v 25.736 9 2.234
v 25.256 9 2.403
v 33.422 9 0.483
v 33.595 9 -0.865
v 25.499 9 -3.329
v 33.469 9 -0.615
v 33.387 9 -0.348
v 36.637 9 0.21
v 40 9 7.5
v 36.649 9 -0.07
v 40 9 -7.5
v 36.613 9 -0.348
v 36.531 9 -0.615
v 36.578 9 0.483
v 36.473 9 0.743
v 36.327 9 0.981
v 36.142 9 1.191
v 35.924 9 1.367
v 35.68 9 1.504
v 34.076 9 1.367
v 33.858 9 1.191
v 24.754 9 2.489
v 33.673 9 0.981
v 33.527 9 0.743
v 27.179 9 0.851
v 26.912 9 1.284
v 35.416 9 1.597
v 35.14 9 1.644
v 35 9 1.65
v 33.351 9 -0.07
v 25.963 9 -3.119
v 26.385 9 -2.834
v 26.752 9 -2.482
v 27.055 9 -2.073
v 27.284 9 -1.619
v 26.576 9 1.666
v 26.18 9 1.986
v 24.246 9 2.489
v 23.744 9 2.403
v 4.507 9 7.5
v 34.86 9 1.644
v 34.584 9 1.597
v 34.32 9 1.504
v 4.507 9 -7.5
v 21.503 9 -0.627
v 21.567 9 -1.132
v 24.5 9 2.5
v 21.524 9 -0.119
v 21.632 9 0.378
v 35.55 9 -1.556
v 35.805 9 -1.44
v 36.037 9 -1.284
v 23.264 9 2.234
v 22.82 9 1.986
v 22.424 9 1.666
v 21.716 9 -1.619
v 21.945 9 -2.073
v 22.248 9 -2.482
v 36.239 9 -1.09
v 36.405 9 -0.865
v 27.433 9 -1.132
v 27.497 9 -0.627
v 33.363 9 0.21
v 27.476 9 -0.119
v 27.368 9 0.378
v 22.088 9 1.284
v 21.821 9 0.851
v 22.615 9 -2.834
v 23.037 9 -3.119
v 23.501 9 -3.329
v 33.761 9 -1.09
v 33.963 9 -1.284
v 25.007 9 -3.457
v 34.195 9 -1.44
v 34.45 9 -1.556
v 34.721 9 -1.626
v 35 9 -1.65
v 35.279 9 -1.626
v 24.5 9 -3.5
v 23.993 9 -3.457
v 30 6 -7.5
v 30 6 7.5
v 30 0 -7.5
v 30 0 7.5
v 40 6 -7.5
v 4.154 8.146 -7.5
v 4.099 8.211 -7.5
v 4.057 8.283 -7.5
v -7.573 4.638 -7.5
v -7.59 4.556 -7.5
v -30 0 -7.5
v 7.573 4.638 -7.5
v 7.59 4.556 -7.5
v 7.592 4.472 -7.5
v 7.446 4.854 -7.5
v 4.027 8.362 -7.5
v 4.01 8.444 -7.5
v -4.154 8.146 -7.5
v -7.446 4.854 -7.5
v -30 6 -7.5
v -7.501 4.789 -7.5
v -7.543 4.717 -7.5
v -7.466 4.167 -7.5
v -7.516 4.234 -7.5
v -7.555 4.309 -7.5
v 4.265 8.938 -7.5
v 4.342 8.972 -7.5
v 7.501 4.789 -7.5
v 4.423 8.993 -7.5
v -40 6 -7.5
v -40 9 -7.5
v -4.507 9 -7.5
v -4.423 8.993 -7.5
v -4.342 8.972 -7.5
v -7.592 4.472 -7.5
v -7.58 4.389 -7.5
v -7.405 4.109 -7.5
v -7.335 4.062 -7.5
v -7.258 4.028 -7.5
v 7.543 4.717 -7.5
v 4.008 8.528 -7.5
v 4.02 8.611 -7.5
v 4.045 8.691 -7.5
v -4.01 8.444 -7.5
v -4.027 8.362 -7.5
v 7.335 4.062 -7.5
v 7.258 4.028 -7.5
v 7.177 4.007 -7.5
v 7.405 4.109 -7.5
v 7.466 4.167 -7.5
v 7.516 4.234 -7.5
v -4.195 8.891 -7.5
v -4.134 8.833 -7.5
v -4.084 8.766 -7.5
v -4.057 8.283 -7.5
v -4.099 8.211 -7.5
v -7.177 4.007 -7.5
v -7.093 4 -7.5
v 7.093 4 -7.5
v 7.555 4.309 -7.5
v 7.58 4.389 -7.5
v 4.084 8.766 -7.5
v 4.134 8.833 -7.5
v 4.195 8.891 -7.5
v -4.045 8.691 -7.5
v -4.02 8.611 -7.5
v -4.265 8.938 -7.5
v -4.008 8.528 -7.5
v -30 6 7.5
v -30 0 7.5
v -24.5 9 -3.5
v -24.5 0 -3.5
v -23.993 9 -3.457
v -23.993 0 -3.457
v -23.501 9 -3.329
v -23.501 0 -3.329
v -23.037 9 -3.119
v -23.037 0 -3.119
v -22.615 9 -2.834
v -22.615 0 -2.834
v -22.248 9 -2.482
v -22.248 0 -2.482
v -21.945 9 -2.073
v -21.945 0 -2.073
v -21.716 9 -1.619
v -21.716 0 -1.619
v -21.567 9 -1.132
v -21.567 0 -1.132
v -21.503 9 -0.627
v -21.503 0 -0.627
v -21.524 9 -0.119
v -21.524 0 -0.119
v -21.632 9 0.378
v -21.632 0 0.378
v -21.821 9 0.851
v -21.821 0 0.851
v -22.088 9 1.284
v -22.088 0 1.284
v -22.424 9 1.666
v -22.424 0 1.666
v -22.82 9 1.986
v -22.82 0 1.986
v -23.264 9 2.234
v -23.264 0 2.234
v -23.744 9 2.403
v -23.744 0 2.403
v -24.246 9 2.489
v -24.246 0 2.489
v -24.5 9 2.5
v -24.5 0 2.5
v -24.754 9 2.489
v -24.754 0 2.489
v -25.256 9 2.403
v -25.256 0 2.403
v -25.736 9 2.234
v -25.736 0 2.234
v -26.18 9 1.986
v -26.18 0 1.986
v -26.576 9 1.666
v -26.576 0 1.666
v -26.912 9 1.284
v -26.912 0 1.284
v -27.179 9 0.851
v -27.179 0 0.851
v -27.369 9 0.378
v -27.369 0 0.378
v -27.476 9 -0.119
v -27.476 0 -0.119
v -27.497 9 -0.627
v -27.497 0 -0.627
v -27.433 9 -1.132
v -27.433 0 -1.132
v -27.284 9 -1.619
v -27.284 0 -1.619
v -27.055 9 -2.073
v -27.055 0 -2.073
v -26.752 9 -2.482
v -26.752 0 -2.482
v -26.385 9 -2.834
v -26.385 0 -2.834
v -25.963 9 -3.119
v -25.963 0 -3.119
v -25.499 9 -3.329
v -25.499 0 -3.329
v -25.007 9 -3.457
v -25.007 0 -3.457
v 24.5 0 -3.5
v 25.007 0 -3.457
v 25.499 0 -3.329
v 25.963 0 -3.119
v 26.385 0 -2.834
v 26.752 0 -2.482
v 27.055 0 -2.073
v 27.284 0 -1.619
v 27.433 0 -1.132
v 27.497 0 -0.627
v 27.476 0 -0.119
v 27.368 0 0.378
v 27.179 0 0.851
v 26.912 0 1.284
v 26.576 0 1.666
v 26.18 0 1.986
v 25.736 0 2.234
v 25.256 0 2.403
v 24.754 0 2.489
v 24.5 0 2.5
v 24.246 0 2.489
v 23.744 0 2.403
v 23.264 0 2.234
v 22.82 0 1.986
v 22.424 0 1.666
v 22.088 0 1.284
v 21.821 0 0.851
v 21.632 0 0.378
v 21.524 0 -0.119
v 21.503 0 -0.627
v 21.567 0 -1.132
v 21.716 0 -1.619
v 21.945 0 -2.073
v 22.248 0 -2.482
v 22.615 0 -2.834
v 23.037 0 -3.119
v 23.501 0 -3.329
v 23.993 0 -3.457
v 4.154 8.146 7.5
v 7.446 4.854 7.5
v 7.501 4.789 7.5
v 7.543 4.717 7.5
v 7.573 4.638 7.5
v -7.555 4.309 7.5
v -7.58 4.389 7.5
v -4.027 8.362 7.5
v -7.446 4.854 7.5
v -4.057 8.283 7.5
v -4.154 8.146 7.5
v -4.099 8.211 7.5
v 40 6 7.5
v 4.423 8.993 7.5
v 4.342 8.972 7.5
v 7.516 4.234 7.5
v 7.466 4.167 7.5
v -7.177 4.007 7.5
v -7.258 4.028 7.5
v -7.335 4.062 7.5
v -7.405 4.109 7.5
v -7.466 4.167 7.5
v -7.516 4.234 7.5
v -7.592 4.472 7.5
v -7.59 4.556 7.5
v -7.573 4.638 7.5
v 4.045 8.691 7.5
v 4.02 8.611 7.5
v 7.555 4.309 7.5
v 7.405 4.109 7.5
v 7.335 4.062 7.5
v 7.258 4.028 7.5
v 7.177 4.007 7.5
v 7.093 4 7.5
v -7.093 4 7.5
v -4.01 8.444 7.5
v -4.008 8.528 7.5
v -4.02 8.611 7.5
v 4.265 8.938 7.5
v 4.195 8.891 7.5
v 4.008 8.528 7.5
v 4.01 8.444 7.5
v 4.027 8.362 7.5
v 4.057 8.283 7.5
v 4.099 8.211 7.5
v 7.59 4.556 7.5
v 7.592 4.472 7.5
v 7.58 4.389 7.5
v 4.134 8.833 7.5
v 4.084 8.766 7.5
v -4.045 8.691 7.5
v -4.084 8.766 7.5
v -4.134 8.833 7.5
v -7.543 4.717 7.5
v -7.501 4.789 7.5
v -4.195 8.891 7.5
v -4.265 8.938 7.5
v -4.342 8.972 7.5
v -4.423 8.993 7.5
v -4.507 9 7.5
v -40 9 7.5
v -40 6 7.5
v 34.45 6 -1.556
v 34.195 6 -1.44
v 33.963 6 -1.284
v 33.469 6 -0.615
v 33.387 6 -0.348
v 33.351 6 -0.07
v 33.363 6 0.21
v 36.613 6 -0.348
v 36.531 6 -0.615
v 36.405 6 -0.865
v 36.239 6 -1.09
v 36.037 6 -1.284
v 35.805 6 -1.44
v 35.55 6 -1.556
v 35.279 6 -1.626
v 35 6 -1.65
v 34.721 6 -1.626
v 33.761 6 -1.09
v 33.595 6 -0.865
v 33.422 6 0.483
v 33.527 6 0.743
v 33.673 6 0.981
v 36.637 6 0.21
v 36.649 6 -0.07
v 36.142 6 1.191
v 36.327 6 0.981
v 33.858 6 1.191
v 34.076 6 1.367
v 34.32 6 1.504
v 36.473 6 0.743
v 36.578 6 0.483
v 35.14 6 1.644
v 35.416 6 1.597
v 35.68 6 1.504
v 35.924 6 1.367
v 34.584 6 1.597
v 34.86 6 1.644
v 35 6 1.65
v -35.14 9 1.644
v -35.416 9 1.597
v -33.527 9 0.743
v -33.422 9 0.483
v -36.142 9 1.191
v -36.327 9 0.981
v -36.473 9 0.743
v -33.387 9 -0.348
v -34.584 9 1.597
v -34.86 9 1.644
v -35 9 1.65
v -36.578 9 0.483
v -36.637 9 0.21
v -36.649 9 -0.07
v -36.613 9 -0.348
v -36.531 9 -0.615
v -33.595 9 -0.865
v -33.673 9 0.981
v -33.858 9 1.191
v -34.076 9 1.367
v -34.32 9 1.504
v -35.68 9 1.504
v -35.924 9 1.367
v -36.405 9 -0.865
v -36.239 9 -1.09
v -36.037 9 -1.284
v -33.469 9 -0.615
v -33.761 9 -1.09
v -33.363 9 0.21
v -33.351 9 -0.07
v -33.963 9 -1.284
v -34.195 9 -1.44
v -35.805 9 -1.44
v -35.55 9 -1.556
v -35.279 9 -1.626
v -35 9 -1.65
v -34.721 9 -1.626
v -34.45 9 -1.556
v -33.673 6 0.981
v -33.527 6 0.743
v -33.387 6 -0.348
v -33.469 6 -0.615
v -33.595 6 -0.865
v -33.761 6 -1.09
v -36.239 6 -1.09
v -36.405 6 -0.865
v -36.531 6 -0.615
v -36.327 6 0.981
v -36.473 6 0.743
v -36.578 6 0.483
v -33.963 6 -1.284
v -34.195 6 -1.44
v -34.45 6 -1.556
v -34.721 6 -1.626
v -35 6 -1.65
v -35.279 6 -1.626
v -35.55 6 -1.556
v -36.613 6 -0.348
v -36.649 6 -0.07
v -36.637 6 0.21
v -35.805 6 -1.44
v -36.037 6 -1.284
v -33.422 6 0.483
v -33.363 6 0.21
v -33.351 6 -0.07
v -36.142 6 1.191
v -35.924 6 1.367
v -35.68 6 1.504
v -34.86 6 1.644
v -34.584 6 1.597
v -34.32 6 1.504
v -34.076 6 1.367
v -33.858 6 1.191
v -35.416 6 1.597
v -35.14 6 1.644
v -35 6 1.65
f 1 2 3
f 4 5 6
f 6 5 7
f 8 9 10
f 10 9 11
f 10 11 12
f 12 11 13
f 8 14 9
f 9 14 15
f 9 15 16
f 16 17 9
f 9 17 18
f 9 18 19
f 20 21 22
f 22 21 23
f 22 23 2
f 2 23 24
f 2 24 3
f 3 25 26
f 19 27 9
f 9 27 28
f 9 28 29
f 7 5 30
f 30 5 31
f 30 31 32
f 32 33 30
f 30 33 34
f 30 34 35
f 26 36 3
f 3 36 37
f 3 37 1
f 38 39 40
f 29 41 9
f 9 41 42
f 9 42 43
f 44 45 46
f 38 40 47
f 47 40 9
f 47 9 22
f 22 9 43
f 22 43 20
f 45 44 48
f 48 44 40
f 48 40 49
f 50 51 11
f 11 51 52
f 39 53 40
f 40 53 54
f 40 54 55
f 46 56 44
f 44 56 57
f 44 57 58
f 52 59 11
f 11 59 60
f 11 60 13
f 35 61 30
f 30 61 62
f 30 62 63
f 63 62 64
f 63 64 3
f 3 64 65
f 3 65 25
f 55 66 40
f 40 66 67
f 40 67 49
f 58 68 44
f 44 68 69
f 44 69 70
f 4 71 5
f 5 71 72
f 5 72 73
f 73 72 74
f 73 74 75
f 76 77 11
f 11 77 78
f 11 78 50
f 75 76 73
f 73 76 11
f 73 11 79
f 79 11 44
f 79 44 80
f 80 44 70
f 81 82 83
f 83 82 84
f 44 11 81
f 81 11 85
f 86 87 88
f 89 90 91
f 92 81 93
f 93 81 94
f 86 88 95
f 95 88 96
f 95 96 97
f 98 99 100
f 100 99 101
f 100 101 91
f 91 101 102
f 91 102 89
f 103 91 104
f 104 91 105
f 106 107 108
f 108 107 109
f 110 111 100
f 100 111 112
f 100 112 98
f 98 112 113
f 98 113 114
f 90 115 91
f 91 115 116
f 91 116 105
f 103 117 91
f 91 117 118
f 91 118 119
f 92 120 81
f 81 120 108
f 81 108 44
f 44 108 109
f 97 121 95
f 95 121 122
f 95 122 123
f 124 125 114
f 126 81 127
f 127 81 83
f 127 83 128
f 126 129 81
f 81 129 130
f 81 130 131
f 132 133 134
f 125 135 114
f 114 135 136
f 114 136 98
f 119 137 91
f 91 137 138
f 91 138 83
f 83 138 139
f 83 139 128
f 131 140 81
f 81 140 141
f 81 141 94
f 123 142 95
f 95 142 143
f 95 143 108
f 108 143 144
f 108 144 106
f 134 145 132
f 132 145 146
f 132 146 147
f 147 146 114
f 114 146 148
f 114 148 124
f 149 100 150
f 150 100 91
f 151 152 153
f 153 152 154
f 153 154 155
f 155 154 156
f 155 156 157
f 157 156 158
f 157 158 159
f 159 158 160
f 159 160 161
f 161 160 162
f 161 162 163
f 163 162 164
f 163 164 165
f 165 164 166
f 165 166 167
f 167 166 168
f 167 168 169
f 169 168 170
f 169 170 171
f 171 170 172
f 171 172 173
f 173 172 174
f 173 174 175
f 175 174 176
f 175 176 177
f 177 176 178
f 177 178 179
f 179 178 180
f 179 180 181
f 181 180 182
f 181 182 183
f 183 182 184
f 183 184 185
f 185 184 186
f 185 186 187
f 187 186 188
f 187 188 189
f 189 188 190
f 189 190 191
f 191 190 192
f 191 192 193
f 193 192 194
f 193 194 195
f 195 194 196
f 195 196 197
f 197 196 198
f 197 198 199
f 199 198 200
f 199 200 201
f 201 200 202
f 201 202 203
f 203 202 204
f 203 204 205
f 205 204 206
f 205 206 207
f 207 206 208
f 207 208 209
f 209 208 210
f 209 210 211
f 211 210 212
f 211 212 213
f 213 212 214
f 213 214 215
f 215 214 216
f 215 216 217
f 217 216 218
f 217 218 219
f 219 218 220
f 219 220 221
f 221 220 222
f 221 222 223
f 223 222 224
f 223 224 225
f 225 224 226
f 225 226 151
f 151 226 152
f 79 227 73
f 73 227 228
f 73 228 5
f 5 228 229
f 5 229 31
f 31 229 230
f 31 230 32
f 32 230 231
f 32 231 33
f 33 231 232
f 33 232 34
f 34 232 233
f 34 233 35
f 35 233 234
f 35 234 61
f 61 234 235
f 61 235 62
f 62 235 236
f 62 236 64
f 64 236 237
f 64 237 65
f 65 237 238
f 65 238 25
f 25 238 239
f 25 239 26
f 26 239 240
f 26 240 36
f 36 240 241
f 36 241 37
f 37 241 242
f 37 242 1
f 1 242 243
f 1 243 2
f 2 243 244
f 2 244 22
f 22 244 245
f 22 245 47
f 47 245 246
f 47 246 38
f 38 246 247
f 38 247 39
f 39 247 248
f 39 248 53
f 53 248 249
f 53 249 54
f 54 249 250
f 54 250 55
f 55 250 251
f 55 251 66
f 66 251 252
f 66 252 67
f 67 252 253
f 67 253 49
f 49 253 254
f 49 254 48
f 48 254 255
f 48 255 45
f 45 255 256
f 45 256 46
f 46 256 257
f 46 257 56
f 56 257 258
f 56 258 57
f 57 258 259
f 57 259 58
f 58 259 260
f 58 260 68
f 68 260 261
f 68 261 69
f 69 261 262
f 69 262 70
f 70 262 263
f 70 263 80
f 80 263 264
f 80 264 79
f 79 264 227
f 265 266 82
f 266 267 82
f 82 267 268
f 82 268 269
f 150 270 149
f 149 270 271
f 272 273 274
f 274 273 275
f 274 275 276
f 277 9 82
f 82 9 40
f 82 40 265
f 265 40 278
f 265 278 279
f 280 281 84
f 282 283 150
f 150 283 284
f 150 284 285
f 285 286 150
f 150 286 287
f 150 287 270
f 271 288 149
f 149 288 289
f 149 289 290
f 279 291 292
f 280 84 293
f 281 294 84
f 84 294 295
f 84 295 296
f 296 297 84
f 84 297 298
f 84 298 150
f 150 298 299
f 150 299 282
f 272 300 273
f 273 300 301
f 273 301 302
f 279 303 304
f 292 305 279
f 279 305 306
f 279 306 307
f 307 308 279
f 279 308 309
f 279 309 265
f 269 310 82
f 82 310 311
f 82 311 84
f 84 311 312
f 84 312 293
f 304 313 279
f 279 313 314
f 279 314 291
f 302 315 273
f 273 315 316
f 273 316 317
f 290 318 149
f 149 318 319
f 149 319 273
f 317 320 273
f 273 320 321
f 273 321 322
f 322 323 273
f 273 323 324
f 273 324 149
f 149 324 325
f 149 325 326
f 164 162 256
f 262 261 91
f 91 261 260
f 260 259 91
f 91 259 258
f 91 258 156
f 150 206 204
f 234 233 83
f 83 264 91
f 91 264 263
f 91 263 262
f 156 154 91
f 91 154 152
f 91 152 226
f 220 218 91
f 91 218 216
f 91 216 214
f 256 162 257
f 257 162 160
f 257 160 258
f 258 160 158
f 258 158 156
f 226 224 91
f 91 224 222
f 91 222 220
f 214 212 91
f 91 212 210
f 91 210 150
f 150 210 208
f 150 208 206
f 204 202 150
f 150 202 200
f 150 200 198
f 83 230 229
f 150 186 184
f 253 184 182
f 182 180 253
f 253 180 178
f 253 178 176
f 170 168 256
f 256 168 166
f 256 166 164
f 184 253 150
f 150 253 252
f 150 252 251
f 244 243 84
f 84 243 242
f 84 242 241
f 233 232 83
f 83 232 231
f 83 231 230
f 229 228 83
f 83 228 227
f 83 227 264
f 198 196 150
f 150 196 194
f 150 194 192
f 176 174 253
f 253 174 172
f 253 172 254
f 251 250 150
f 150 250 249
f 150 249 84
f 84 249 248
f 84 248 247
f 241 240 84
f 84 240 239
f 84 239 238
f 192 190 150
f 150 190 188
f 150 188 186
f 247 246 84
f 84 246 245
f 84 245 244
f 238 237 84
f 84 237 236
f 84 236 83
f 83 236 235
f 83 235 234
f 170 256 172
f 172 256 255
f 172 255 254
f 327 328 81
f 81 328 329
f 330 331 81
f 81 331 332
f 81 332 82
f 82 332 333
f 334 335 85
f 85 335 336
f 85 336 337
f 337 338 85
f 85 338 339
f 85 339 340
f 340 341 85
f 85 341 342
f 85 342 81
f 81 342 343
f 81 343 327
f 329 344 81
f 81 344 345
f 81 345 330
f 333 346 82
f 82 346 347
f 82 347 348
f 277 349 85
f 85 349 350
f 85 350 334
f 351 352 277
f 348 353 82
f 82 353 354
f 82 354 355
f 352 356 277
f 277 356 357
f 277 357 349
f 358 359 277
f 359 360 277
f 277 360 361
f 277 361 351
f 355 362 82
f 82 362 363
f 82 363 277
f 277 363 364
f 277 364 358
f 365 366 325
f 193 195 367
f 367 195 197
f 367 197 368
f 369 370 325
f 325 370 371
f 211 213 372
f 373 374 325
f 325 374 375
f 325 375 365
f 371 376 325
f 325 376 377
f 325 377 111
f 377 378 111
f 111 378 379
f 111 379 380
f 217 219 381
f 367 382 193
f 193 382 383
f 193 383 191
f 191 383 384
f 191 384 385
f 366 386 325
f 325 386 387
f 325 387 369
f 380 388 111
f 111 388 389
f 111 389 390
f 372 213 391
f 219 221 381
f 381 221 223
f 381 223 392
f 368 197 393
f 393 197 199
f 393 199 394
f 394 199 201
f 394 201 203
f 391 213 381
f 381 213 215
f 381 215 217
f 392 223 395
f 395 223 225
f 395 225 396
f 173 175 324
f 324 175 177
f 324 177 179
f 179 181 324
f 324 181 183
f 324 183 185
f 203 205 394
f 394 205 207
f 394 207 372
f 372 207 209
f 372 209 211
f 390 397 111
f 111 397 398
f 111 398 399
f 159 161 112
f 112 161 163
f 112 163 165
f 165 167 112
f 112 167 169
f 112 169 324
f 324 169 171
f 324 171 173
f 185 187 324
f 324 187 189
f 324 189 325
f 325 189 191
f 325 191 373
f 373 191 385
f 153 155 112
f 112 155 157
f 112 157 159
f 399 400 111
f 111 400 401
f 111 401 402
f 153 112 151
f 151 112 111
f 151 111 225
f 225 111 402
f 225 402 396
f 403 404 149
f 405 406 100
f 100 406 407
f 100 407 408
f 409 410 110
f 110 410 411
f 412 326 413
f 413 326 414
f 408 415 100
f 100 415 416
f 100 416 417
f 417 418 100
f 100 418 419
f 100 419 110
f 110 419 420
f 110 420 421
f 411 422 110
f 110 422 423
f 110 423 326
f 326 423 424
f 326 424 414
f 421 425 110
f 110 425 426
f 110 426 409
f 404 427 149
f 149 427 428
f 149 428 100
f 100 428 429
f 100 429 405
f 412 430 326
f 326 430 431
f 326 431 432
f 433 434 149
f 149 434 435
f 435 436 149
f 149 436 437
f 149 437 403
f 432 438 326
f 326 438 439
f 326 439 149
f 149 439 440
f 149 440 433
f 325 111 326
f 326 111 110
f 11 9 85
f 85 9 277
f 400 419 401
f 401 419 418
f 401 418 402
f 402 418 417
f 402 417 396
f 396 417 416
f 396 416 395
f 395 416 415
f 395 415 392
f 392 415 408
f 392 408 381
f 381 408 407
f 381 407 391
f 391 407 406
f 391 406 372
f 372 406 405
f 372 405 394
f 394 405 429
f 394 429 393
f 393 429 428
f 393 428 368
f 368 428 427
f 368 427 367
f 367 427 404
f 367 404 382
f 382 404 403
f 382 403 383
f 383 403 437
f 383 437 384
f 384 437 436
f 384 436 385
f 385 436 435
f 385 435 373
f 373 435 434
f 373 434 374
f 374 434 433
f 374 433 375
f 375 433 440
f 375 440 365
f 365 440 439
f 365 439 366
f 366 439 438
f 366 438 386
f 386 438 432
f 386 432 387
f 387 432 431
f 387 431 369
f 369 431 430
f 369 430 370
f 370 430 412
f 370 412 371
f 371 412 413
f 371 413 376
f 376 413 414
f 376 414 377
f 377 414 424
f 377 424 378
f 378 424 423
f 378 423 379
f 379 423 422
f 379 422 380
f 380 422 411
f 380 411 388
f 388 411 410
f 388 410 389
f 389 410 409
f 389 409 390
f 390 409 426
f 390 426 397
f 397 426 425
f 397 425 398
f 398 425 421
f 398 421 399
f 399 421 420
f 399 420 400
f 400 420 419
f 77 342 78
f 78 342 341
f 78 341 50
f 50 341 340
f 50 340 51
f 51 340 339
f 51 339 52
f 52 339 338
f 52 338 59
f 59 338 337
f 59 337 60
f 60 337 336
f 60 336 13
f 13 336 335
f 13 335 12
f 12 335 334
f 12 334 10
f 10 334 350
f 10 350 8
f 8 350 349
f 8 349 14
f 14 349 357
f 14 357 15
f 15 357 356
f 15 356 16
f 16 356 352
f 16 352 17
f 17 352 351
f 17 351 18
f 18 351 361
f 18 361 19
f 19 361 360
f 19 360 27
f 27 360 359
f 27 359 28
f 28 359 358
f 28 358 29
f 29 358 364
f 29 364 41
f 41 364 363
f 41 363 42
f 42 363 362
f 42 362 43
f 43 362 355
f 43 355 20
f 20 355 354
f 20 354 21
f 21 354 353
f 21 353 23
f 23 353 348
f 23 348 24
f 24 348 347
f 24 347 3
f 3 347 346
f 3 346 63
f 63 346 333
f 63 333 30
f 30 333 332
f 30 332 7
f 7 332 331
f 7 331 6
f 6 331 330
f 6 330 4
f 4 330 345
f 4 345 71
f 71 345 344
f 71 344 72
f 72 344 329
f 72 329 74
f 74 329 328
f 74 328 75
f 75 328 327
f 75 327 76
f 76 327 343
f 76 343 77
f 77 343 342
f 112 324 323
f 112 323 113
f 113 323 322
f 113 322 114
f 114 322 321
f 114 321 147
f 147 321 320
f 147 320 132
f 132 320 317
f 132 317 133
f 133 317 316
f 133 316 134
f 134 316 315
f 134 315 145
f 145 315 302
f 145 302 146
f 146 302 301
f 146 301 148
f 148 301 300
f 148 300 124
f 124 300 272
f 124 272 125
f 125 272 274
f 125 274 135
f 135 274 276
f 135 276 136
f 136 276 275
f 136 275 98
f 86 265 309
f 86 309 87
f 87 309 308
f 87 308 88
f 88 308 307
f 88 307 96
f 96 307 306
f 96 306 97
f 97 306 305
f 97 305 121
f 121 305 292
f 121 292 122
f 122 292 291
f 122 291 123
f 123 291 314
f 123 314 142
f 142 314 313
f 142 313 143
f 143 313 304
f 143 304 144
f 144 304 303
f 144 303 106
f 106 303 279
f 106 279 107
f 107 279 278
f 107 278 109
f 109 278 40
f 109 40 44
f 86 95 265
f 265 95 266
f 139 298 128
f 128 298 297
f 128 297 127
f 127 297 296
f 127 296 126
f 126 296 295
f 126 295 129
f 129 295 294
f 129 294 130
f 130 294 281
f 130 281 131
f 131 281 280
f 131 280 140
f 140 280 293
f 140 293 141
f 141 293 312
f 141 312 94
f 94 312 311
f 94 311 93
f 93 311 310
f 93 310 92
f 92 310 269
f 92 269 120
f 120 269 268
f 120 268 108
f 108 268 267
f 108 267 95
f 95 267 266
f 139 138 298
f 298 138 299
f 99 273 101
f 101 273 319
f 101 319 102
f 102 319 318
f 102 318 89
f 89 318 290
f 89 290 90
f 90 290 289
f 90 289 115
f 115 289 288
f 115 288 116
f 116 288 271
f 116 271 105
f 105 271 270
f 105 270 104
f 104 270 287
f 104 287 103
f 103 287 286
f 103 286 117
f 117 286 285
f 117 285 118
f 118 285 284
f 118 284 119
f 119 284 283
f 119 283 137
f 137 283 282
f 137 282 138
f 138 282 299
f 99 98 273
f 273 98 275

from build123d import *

# Parameters (mm, degrees)
SKETCH_1_W               = 60
SKETCH_1_H               = 15
SKETCH_1_R               = 3
EXTRUDE_1_DEPTH          = 6
EXTRUDE_START            = 6
SKETCH_1_3_W             = 80
SKETCH_1_3_H             = 15
SKETCH_1_3_R             = 1.65
SKETCH_1_3_R_2           = 3
EXTRUDE_2_DEPTH          = 3
CUT_EXTRUDE_1_DEPTH      = 42.680331093
CUT_EXTRUDE_1_DEPTH_BACK = 42.680331093


with BuildPart() as part:
    # Эскиз1 → Бобышка-Вытянуть1 (new body)
    with BuildSketch(Plane(origin=(0, 0, 0), x_dir=(1, 0, 0), z_dir=(0, 1, 0))):
        Rectangle(SKETCH_1_W, SKETCH_1_H)
        with Locations(Location((24.5, 0.5, 0), (0, 0, 270))):
            Circle(SKETCH_1_R, mode=Mode.SUBTRACT)
        with Locations(Location((-24.5, 0.5, 0), (0, 0, 270))):
            Circle(SKETCH_1_R, mode=Mode.SUBTRACT)
    extrude(amount=EXTRUDE_1_DEPTH)

    # Эскиз1<3> → Бобышка-Вытянуть2 (add)
    with BuildSketch(Plane(origin=(0, 0, 0), x_dir=(1, 0, 0), z_dir=(0, 1, 0)).offset(EXTRUDE_START)):
        Rectangle(SKETCH_1_3_W, SKETCH_1_3_H)
        with Locations(Location((-35, 0, 0), (0, 0, 270))):
            Circle(SKETCH_1_3_R, mode=Mode.SUBTRACT)
        with Locations(Location((24.5, 0.5, 0), (0, 0, 270))):
            Circle(SKETCH_1_3_R_2, mode=Mode.SUBTRACT)
        with Locations(Location((-24.5, 0.5, 0), (0, 0, 270))):
            Circle(SKETCH_1_3_R_2, mode=Mode.SUBTRACT)
        with Locations(Location((35, 0, 0), (0, 0, 270))):
            Circle(SKETCH_1_3_R, mode=Mode.SUBTRACT)
    extrude(amount=EXTRUDE_2_DEPTH)

    # Эскиз2 → Вырез-Вытянуть1 (cut, two sides: drawn at the far end of the back side and taken through both)
    with BuildSketch(Plane.XY.offset(-CUT_EXTRUDE_1_DEPTH_BACK)):
        with BuildLine():
            Line((4.153553391, 8.146446609), (7.446446609, 4.853553391))
            ThreePointArc((7.446446609, 4.853553391), (7.554832985, 4.308658284), (7.092893219, 4))
            Line((7.092893219, 4), (-7.092893219, 4))
            ThreePointArc((-7.092893219, 4), (-7.554832985, 4.308658284), (-7.446446609, 4.853553391))
            Line((-7.446446609, 4.853553391), (-4.153553391, 8.146446609))
            ThreePointArc((-4.153553391, 8.146446609), (-4.045167015, 8.691341716), (-4.507106781, 9))
            Line((-4.507106781, 9), (4.507106781, 9))
            ThreePointArc((4.507106781, 9), (4.045167015, 8.691341716), (4.153553391, 8.146446609))
        make_face()
    extrude(amount=CUT_EXTRUDE_1_DEPTH + CUT_EXTRUDE_1_DEPTH_BACK, mode=Mode.SUBTRACT)


solid = part.part
